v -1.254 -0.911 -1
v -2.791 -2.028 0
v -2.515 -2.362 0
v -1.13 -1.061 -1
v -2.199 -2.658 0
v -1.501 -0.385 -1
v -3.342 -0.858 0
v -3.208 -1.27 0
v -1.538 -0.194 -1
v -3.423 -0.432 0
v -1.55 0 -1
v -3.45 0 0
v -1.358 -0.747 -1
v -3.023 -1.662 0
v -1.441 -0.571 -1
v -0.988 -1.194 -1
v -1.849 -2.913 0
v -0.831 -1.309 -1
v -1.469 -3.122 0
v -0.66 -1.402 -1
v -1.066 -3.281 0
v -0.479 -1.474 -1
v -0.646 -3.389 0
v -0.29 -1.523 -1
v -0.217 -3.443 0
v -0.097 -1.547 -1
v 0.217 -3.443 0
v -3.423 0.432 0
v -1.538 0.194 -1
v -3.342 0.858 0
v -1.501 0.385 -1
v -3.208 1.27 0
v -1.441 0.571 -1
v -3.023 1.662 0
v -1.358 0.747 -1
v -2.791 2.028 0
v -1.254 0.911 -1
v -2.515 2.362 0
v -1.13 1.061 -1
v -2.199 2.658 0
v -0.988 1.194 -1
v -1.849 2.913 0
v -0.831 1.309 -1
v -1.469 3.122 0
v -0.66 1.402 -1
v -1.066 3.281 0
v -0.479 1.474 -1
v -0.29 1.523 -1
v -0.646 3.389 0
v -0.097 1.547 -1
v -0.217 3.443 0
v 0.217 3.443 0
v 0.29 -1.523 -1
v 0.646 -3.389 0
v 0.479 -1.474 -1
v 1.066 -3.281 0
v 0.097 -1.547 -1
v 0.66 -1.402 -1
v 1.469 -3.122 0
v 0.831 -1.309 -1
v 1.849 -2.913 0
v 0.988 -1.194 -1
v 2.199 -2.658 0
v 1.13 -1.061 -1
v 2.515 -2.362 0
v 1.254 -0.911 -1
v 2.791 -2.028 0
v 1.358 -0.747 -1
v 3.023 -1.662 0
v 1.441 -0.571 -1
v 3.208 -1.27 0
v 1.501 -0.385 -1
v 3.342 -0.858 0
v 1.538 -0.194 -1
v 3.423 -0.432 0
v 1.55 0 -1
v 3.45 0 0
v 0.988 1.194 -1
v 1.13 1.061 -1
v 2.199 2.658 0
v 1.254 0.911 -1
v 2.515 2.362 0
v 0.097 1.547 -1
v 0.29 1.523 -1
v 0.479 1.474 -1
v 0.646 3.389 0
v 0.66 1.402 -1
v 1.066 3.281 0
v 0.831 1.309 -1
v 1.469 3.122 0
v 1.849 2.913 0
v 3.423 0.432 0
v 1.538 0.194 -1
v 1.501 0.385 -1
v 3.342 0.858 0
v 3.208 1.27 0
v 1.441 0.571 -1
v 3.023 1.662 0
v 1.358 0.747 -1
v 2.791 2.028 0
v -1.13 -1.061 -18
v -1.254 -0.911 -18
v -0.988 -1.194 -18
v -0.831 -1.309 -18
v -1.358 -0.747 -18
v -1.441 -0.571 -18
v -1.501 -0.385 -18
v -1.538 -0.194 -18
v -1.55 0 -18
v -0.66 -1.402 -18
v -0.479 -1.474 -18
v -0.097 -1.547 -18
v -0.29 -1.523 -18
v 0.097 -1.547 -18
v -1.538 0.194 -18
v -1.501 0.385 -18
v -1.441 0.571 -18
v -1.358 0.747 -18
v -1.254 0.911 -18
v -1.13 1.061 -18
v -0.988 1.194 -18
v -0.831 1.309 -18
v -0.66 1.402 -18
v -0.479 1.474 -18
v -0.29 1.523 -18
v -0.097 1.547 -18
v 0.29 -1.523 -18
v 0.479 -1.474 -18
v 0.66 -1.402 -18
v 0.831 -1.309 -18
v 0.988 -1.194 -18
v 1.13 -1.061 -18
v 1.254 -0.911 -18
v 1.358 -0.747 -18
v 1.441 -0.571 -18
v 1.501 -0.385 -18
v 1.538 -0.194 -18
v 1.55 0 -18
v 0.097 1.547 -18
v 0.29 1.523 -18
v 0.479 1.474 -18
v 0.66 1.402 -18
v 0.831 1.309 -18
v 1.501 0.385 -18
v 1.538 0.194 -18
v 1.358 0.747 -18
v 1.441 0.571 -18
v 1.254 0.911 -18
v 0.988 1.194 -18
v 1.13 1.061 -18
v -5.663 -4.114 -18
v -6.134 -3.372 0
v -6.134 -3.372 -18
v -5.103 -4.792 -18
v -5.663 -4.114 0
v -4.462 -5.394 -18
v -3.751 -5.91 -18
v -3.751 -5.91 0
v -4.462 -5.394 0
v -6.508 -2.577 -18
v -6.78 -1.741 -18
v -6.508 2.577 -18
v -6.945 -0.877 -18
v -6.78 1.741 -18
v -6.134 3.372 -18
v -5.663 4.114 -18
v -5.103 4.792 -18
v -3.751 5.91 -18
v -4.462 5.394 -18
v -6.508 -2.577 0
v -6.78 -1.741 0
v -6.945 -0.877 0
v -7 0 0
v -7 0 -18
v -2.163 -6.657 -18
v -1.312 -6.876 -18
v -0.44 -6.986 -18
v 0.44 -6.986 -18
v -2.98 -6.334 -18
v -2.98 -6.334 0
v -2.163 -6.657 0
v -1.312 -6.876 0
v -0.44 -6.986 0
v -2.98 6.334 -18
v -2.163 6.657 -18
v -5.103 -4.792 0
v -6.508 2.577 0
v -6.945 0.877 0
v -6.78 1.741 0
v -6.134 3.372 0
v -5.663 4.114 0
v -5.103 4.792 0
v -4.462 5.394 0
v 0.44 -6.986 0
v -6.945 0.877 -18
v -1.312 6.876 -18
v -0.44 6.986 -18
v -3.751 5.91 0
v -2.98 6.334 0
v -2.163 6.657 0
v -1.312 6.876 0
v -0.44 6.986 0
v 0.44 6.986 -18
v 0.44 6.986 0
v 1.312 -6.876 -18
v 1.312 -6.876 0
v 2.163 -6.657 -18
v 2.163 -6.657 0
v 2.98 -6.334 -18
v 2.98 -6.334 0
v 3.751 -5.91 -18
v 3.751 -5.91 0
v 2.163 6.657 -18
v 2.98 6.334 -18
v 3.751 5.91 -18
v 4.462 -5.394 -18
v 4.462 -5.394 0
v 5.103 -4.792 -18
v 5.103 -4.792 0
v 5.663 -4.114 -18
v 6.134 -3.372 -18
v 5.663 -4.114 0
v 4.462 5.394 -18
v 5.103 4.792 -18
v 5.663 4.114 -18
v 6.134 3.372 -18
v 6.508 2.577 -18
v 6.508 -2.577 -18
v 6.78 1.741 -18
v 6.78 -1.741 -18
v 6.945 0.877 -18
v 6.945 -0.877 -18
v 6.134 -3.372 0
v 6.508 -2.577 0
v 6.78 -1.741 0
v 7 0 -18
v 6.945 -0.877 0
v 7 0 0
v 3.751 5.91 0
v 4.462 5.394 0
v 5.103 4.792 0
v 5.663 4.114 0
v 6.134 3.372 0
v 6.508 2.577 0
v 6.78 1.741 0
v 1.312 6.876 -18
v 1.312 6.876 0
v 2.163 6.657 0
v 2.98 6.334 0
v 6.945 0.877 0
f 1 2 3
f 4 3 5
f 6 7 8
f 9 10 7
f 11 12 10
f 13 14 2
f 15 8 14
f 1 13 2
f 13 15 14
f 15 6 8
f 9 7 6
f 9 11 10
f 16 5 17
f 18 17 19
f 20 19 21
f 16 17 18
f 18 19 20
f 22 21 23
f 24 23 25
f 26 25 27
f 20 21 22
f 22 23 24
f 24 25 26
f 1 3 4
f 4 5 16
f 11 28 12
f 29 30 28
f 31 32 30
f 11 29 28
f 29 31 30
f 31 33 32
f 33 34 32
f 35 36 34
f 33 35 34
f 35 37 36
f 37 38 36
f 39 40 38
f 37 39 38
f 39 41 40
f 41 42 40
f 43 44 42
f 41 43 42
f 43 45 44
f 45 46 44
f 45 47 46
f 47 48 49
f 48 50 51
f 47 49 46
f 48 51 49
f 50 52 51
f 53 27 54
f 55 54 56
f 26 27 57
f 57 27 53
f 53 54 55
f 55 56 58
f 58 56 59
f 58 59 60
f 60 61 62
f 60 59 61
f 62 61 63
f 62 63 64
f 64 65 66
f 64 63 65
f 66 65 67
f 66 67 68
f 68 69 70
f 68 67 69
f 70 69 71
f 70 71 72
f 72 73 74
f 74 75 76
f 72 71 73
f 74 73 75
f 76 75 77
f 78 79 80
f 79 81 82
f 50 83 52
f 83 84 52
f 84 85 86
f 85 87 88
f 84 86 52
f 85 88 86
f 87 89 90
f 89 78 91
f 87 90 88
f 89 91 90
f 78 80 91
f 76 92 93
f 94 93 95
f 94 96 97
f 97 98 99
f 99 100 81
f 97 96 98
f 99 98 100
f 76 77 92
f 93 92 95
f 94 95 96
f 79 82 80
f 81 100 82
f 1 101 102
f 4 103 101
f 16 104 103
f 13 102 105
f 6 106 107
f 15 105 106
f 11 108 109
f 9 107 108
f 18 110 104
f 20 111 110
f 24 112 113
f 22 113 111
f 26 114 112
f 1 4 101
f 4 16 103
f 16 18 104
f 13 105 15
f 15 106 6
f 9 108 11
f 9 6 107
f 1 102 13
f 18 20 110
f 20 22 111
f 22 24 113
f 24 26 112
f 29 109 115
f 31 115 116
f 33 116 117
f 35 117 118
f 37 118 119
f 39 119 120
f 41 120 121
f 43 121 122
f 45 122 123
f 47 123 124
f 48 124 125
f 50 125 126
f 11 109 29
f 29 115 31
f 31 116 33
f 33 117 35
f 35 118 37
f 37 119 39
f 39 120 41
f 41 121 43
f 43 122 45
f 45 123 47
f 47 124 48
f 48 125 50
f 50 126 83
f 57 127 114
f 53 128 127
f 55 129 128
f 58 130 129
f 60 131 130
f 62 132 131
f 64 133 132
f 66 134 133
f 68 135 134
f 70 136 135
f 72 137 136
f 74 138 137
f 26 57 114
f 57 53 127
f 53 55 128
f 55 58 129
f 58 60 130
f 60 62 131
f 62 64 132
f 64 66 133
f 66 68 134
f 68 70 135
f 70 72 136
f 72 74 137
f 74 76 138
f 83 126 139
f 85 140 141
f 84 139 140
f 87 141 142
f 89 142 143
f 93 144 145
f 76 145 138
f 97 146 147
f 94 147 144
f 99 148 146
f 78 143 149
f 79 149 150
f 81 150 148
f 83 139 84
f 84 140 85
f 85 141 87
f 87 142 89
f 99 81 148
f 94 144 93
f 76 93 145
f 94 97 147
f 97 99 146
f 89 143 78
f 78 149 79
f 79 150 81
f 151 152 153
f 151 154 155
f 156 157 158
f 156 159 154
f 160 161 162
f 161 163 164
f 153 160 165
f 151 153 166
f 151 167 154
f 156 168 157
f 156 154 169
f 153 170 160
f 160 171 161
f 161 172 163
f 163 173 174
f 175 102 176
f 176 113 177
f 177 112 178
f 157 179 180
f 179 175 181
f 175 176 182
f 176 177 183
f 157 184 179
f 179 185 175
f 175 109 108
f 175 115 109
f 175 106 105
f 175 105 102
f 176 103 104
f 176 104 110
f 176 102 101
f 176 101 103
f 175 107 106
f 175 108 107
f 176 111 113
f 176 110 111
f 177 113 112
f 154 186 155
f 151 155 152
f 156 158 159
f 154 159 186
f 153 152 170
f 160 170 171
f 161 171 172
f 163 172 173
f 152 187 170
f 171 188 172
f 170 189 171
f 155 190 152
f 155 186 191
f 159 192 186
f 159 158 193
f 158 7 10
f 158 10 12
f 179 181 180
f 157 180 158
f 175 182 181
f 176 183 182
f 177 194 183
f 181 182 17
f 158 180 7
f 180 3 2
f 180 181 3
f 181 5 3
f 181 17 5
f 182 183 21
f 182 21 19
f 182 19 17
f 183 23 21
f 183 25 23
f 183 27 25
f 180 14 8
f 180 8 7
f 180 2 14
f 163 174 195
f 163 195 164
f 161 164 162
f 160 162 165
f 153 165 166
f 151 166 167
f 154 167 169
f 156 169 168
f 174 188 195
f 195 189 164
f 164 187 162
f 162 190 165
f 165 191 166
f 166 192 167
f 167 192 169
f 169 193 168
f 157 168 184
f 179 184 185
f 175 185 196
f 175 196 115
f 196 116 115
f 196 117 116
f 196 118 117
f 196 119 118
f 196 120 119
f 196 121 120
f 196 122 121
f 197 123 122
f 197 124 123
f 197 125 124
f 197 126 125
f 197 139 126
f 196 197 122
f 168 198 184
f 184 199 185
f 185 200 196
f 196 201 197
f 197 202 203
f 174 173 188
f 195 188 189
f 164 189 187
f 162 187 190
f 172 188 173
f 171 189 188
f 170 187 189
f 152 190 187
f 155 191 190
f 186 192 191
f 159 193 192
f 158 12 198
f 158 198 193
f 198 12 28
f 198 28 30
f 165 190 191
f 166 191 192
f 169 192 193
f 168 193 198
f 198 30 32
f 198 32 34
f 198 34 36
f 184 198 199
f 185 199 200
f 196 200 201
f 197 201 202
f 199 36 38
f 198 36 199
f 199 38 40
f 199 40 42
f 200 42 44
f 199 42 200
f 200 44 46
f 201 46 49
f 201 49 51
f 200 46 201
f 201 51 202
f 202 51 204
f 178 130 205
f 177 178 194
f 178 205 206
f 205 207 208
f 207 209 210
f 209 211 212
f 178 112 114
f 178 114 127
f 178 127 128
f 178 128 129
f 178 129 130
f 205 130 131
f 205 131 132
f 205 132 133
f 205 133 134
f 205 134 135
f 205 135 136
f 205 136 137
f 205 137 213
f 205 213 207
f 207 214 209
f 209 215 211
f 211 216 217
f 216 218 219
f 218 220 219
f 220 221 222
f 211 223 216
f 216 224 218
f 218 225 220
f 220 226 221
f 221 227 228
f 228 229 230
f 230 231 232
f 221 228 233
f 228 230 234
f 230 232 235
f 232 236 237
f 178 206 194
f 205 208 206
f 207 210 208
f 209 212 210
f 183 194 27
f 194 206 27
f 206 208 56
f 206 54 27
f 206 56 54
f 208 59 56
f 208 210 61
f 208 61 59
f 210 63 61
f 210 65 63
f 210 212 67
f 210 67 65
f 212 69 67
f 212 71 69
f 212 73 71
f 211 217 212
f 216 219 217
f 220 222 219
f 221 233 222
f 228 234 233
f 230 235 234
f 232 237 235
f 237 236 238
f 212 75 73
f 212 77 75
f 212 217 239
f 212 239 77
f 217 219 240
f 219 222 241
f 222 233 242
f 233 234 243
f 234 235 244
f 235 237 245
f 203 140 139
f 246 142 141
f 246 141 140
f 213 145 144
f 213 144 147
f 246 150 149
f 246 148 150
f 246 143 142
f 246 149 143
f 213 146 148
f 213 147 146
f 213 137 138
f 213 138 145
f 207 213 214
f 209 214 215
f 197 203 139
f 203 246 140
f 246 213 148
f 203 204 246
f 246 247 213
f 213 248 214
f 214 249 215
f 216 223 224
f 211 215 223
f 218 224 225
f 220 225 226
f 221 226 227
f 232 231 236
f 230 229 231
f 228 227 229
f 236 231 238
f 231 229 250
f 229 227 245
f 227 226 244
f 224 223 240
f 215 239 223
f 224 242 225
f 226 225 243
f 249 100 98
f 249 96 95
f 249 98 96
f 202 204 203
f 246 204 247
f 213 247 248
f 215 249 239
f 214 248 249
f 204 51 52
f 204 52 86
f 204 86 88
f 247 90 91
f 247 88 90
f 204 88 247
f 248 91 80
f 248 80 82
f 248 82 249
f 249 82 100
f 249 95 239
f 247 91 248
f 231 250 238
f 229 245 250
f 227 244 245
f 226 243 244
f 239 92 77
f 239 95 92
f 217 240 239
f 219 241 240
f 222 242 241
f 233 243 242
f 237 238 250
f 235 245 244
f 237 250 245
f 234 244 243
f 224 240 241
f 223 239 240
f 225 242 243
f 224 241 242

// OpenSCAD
$fn = 50;

difference() {
	union() {
		translate(v = [0, 0, -18.0]) {
			cylinder(h = 18, r = 7.0);
		}
	}
	union() {
		translate(v = [0, 0, 0]) {
			rotate(a = [0, 0, 0]) {
				difference() {
					union() {
						translate(v = [0, 0, -21.0]) {
							cylinder(h = 21, r = 1.25);
						}
						translate(v = [0, 0, -1.0]) {
							cylinder(h = 1.0, r1 = 1.55, r2 = 3.45);
						}
						translate(v = [0, 0, -21.0]) {
							cylinder(h = 21, r = 1.55);
						}
						translate(v = [0, 0, -21.0]) {
							cylinder(h = 21, r = 1.25);
						}
					}
					union();
				}
			}
		}
	}
}
